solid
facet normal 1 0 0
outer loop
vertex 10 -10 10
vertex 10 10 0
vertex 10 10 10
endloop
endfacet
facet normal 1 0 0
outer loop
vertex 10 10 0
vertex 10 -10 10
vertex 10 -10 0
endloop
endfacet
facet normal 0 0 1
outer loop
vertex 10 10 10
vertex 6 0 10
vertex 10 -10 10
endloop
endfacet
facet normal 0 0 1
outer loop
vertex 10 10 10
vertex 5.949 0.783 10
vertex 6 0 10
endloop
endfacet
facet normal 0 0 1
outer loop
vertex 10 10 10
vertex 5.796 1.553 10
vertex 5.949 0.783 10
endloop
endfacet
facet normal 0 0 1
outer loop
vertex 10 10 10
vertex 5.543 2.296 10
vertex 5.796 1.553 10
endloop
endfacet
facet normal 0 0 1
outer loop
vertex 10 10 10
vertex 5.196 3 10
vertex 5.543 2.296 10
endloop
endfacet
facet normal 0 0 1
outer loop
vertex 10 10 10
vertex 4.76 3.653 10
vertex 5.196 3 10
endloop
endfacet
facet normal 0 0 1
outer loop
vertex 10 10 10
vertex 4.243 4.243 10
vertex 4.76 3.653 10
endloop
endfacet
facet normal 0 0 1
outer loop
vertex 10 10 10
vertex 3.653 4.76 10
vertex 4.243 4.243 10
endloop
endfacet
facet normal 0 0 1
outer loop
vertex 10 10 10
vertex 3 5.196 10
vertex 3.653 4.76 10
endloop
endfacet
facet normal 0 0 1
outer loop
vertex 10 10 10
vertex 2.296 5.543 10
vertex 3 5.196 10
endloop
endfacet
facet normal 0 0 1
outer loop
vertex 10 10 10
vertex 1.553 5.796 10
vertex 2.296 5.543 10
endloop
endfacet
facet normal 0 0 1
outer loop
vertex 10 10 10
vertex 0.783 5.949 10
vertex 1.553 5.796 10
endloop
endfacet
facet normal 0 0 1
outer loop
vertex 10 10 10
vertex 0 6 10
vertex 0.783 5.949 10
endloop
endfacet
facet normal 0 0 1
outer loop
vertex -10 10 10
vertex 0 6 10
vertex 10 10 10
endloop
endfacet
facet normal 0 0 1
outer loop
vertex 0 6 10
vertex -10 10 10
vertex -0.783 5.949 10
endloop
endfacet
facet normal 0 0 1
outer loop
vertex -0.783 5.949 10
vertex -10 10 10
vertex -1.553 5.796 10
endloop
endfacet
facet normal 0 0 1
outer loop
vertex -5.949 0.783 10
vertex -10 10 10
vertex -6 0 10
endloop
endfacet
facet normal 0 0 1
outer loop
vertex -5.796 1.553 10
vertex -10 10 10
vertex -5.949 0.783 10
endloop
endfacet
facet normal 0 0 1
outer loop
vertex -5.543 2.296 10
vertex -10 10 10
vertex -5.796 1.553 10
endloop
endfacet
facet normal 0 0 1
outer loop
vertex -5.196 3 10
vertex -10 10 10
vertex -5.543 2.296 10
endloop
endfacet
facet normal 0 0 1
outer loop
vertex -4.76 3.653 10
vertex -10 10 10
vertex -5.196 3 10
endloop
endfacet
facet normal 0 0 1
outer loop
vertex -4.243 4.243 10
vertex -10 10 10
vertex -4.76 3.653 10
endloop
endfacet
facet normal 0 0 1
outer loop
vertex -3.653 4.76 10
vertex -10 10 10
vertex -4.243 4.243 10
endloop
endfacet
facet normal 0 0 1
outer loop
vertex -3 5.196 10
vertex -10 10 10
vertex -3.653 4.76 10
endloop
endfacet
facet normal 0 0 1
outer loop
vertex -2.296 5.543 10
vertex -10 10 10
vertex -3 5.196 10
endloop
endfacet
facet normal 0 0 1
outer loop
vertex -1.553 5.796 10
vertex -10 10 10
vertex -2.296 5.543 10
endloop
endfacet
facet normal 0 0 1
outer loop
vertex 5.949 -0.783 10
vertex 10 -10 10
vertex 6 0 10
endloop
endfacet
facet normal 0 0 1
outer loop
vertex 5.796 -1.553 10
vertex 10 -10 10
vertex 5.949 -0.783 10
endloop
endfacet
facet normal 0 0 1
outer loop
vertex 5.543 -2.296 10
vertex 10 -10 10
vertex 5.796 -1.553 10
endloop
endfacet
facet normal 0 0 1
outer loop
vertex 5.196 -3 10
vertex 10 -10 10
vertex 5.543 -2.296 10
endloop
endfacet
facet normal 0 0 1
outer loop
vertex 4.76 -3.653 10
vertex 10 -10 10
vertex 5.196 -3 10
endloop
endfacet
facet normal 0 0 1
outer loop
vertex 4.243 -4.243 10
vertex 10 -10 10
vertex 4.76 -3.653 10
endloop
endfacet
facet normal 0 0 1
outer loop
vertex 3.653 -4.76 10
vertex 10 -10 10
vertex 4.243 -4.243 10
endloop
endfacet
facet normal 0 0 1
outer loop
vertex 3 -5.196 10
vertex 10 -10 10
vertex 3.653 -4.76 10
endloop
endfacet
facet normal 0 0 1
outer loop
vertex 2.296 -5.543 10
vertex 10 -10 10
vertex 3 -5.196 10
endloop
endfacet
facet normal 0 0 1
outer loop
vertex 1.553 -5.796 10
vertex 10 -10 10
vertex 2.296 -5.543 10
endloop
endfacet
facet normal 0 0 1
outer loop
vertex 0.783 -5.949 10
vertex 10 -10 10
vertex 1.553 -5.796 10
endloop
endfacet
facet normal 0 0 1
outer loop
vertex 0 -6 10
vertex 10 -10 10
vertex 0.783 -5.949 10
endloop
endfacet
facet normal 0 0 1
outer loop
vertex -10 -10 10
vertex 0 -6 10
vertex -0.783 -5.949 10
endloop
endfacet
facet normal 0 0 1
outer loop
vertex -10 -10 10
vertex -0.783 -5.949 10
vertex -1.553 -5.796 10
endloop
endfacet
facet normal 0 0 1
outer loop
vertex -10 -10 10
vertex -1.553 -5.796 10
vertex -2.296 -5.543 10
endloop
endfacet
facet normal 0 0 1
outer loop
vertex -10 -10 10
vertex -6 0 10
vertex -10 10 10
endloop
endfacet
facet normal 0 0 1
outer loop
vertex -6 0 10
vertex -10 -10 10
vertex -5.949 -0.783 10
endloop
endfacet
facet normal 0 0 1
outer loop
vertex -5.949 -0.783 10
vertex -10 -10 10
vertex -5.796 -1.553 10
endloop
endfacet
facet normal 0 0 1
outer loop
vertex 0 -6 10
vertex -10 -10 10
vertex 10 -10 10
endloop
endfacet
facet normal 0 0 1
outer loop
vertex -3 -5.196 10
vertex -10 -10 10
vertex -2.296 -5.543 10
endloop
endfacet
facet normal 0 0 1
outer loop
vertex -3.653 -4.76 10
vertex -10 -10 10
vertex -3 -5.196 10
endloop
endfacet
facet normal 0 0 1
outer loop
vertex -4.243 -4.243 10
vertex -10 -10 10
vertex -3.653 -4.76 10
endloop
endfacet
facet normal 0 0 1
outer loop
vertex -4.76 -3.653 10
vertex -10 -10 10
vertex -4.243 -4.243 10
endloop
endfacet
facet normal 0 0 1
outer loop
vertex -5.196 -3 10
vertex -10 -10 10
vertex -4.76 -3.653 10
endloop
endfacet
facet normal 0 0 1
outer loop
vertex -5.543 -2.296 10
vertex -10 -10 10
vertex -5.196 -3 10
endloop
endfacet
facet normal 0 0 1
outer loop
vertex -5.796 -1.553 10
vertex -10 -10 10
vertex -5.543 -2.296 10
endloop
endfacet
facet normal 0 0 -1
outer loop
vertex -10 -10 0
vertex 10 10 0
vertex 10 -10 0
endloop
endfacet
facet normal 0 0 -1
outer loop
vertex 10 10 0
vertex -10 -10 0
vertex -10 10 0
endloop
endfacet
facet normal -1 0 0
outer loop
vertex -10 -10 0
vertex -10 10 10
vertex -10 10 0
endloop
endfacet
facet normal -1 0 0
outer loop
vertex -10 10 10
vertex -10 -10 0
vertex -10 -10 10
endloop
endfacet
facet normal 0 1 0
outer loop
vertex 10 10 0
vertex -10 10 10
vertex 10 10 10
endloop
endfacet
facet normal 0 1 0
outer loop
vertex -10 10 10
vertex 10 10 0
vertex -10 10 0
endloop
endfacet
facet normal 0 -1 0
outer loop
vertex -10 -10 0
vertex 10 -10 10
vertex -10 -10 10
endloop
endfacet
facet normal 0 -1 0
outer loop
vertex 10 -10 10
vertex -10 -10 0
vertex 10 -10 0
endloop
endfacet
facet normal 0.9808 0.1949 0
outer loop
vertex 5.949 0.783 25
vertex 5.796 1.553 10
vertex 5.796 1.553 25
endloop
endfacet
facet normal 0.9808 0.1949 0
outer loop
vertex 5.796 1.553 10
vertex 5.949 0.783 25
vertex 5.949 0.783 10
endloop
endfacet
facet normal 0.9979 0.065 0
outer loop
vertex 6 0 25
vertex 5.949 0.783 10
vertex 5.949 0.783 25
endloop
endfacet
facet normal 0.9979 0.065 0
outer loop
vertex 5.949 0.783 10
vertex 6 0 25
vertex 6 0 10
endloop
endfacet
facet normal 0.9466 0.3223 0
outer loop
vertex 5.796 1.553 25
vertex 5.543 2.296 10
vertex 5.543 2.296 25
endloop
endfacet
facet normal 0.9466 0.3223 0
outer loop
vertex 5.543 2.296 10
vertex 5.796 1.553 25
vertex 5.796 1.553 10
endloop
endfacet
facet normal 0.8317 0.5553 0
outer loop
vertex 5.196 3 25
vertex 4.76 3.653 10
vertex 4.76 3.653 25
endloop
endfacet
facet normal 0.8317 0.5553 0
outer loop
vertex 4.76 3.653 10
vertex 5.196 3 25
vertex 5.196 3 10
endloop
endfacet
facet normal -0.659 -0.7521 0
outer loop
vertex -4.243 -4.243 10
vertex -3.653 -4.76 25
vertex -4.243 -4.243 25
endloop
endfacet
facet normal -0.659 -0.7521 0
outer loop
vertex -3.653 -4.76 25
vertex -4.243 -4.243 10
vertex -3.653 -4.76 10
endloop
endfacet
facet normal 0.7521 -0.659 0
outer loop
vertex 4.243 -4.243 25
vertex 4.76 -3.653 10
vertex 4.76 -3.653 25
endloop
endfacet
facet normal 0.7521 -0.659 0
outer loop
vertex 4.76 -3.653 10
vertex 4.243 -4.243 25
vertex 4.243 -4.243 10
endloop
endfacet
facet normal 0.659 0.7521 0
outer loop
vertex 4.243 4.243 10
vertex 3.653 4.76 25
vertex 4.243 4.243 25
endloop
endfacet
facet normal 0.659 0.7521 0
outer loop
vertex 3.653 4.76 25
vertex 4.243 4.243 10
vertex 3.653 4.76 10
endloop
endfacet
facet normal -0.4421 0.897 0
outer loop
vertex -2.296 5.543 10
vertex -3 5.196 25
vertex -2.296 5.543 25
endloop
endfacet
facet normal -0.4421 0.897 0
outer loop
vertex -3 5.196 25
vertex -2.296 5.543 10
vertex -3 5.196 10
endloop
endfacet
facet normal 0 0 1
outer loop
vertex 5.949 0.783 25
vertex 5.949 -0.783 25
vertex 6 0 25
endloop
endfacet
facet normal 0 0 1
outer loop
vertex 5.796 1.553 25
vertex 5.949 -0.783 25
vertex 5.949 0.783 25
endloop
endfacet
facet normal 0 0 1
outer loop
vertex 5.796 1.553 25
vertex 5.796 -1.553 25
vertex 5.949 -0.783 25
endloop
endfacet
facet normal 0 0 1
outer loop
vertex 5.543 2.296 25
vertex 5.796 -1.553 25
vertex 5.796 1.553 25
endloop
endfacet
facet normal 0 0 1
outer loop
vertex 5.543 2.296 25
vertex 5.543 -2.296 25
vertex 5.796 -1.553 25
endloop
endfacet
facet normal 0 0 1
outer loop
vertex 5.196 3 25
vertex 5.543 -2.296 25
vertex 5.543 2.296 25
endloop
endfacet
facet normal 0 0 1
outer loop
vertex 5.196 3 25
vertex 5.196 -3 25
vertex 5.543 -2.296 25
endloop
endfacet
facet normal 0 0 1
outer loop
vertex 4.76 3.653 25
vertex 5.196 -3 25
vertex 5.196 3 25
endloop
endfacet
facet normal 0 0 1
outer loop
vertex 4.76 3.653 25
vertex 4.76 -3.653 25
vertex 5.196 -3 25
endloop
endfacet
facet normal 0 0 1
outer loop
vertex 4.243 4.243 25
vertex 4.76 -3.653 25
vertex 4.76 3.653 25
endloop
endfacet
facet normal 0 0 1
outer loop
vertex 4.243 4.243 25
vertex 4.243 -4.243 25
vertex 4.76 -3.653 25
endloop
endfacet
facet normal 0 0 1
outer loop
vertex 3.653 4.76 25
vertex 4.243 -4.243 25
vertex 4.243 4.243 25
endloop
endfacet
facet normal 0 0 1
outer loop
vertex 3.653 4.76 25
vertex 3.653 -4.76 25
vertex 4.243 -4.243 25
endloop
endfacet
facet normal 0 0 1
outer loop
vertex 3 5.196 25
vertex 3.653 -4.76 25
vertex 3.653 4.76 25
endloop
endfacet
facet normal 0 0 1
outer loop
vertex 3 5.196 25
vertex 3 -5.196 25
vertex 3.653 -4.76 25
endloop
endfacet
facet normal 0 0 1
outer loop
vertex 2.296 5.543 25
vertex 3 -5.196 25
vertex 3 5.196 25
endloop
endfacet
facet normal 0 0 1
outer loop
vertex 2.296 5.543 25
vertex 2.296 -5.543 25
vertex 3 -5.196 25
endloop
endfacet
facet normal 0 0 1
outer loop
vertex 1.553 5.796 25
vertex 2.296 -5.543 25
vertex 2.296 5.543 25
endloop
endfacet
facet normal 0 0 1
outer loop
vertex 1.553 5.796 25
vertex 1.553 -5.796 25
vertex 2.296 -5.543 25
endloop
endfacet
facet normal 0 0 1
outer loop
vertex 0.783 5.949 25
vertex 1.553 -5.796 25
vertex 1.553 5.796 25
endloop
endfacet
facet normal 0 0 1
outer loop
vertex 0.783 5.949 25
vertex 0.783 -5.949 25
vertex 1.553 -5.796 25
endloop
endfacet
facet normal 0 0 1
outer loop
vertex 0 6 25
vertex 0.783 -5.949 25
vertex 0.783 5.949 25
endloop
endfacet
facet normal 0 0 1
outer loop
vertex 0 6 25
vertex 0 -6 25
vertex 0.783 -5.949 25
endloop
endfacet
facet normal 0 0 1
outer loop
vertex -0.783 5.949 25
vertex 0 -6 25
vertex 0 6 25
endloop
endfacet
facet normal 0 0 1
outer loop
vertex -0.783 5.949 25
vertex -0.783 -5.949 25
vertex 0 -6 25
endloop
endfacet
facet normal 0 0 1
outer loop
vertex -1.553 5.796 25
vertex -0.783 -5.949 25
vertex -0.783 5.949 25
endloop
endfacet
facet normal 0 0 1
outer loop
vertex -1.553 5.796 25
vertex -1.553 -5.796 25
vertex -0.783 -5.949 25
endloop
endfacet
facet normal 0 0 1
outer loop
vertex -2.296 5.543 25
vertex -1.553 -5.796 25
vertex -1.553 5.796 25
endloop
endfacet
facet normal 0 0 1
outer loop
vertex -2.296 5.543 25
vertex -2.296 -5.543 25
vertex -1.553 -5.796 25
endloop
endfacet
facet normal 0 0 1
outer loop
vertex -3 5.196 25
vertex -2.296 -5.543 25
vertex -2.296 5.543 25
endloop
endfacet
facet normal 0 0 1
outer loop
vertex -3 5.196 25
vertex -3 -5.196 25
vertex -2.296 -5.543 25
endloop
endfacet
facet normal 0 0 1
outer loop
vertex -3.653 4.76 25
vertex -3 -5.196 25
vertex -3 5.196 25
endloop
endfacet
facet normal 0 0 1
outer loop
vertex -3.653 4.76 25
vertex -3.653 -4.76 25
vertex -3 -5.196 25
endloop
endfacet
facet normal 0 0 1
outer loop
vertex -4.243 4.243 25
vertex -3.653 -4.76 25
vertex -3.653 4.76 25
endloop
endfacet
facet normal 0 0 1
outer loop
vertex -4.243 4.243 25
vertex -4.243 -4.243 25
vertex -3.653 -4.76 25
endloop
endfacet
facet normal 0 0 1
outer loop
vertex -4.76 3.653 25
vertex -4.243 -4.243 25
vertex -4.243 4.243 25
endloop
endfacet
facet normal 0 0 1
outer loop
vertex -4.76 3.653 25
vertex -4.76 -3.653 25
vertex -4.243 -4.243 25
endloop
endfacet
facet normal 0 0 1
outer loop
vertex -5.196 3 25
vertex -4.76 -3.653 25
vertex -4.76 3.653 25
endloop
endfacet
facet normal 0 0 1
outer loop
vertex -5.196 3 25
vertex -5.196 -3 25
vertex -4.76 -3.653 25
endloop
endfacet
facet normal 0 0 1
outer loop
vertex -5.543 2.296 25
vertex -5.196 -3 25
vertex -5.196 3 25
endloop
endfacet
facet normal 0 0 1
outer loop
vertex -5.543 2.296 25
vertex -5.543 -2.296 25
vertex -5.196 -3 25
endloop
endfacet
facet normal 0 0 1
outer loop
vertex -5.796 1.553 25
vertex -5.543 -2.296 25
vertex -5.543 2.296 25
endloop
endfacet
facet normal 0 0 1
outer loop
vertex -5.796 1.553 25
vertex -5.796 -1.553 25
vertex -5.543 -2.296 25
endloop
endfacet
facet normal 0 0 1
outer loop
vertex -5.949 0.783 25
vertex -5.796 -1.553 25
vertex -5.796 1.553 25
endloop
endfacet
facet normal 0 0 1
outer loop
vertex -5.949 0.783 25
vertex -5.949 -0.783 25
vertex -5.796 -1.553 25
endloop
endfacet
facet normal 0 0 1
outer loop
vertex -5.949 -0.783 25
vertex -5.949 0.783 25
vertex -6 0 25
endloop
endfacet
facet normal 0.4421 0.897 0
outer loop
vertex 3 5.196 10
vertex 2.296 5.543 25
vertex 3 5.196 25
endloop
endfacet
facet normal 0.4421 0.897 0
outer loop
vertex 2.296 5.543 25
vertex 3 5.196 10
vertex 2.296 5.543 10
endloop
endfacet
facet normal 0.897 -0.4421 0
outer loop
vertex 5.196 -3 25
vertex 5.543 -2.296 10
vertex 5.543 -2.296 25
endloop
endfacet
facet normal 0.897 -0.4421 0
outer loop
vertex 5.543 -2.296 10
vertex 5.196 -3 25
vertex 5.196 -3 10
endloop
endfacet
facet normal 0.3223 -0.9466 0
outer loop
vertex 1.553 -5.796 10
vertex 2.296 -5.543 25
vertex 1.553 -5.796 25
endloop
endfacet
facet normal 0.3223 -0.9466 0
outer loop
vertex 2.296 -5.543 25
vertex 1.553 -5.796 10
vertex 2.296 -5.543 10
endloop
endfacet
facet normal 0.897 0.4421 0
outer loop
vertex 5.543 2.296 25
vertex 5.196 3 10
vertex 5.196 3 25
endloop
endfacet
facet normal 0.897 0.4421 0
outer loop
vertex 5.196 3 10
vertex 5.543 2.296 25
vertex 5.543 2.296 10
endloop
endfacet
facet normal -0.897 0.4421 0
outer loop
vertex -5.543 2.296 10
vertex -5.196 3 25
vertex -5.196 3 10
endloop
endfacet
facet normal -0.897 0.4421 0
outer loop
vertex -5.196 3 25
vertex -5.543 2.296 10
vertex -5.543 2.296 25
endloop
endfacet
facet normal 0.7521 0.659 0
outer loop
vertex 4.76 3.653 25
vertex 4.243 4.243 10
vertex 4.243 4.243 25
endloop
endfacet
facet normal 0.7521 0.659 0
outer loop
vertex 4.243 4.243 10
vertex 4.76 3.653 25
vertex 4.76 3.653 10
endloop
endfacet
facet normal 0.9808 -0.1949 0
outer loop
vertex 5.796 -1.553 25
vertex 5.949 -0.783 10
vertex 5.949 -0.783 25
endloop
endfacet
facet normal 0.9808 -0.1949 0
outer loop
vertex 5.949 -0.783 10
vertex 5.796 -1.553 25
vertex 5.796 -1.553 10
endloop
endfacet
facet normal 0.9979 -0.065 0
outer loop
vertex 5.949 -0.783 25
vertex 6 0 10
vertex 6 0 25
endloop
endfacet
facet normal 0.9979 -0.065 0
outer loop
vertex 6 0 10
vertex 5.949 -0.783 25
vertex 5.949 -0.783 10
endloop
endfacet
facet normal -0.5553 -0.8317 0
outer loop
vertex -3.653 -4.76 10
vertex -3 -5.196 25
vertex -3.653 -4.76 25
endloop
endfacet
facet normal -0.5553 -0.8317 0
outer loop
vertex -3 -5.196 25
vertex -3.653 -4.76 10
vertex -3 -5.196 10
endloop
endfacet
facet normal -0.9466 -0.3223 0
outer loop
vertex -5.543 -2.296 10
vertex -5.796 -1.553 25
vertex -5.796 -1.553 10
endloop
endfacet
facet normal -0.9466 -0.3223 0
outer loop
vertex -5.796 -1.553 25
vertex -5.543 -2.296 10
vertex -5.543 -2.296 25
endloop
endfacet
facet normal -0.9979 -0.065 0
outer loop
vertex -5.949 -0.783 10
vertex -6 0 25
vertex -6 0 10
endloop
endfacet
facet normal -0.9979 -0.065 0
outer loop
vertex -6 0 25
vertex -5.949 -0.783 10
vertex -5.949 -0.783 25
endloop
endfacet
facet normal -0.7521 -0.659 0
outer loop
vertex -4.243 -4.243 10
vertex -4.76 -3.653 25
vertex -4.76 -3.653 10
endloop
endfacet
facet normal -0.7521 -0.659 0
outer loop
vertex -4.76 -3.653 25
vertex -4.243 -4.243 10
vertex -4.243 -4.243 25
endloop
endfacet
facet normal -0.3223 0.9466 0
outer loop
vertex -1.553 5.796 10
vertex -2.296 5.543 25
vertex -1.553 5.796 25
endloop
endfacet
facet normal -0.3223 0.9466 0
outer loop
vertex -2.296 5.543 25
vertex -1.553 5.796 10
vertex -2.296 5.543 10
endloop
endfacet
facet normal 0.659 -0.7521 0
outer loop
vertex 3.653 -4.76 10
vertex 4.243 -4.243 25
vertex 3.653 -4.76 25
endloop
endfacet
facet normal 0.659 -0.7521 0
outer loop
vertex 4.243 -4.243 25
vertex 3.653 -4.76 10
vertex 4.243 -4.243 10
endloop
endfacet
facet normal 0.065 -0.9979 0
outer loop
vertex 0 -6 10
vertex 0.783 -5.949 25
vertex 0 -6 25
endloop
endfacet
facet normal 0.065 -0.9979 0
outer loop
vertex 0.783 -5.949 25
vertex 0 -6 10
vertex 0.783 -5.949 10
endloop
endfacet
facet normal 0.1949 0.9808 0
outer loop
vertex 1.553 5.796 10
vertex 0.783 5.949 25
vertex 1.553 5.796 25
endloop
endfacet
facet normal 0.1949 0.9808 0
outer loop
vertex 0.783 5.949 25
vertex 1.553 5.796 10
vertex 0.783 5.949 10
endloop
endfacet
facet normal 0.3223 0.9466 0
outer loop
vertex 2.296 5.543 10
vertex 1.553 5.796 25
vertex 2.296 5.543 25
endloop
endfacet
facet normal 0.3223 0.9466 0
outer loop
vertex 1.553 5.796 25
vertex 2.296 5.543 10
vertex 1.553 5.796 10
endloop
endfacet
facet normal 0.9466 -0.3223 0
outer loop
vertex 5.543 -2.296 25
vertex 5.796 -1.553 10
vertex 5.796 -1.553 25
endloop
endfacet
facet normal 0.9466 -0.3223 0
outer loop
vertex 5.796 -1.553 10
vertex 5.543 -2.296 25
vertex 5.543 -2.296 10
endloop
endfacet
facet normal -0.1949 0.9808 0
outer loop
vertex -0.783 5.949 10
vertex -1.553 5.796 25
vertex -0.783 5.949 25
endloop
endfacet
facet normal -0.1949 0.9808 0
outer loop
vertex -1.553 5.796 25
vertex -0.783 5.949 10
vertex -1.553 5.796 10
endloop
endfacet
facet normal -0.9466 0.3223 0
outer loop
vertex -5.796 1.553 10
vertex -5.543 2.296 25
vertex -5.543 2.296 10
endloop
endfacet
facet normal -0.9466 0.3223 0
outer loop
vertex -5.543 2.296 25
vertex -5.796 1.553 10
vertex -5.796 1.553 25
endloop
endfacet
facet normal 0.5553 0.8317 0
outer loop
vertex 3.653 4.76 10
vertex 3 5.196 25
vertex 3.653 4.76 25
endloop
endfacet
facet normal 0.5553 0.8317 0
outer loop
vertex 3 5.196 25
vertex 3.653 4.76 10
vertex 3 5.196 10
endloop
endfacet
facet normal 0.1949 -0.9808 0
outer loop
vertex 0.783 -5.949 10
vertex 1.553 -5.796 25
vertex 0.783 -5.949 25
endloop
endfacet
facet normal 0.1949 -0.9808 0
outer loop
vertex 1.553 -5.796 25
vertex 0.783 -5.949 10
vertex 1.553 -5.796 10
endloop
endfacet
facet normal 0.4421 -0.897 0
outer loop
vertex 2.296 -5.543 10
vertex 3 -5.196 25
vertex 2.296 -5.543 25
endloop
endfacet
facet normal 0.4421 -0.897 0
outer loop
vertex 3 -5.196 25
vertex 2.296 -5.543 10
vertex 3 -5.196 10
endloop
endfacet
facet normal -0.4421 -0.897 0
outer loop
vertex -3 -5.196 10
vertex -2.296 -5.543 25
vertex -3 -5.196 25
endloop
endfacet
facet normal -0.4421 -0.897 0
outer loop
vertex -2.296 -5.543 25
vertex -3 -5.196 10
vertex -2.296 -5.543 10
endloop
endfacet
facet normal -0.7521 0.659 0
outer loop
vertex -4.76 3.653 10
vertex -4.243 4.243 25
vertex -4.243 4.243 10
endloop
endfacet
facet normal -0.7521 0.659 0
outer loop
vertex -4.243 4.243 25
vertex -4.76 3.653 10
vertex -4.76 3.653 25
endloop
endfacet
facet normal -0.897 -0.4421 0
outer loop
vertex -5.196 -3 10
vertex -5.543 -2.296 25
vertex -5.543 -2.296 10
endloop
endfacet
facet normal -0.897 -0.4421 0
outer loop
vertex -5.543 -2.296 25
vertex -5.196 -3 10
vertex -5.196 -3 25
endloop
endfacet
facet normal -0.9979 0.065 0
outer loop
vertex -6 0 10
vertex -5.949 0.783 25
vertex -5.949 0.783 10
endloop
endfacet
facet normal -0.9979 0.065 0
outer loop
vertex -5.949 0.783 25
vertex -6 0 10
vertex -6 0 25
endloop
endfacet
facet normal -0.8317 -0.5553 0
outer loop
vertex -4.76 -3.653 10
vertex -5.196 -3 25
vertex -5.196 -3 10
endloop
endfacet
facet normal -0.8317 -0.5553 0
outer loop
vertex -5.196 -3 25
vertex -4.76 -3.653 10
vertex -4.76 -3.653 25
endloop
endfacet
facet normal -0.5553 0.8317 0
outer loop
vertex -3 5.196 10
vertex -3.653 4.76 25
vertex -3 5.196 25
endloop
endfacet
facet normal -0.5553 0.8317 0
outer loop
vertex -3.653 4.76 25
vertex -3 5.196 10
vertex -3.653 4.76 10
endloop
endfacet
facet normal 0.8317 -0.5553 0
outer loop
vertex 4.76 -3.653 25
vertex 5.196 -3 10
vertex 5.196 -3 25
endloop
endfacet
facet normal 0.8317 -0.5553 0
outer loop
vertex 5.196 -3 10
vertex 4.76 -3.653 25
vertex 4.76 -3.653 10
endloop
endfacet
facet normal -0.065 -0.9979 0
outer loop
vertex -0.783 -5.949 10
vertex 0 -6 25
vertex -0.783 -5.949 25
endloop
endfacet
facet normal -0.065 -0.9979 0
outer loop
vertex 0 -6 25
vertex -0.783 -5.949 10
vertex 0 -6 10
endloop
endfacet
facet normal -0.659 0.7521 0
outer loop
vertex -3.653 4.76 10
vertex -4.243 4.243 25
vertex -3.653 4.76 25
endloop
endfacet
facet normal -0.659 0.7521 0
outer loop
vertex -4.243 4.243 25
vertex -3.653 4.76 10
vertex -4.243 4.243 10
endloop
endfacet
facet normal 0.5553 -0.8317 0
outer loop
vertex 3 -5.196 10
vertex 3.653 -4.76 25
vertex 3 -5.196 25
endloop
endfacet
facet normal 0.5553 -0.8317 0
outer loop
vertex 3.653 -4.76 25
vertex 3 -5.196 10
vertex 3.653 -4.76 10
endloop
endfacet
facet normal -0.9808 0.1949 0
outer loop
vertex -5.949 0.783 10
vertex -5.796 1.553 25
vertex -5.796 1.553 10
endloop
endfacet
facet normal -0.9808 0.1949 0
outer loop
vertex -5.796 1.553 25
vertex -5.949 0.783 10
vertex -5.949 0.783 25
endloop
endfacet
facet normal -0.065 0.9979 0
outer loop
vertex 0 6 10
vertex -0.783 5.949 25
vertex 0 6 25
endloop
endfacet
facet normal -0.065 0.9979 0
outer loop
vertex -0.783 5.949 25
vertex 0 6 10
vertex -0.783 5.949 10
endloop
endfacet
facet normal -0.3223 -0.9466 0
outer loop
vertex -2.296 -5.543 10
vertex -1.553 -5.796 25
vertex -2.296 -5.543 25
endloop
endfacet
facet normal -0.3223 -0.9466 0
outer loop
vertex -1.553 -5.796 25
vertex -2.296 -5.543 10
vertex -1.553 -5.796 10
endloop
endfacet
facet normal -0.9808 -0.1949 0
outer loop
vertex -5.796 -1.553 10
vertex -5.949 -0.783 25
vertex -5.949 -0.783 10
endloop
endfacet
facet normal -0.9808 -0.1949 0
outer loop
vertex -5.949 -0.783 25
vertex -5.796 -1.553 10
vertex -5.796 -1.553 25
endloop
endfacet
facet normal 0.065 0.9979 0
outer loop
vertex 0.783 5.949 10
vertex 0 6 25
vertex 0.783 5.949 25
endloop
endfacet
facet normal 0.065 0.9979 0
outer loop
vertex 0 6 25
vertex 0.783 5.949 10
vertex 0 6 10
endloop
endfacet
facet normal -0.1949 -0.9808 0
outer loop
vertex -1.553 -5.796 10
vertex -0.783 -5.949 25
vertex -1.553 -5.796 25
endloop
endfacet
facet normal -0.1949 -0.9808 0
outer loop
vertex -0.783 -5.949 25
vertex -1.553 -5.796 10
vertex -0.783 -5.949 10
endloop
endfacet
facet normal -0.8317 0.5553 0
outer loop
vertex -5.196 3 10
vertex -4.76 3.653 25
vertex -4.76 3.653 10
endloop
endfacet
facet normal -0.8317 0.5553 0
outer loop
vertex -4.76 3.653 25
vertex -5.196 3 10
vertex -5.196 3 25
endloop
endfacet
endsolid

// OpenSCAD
// parametrix example model
// A cube base with a cylinder on top
$fn = 48;

cube_w = 20;
cube_h = 10;
cyl_r  = 6;
cyl_h  = 15;

union() {
    translate([0, 0, cube_h / 2])
        cube([cube_w, cube_w, cube_h], center = true);
    translate([0, 0, cube_h])
        cylinder(h = cyl_h, r = cyl_r, center = false);
}
